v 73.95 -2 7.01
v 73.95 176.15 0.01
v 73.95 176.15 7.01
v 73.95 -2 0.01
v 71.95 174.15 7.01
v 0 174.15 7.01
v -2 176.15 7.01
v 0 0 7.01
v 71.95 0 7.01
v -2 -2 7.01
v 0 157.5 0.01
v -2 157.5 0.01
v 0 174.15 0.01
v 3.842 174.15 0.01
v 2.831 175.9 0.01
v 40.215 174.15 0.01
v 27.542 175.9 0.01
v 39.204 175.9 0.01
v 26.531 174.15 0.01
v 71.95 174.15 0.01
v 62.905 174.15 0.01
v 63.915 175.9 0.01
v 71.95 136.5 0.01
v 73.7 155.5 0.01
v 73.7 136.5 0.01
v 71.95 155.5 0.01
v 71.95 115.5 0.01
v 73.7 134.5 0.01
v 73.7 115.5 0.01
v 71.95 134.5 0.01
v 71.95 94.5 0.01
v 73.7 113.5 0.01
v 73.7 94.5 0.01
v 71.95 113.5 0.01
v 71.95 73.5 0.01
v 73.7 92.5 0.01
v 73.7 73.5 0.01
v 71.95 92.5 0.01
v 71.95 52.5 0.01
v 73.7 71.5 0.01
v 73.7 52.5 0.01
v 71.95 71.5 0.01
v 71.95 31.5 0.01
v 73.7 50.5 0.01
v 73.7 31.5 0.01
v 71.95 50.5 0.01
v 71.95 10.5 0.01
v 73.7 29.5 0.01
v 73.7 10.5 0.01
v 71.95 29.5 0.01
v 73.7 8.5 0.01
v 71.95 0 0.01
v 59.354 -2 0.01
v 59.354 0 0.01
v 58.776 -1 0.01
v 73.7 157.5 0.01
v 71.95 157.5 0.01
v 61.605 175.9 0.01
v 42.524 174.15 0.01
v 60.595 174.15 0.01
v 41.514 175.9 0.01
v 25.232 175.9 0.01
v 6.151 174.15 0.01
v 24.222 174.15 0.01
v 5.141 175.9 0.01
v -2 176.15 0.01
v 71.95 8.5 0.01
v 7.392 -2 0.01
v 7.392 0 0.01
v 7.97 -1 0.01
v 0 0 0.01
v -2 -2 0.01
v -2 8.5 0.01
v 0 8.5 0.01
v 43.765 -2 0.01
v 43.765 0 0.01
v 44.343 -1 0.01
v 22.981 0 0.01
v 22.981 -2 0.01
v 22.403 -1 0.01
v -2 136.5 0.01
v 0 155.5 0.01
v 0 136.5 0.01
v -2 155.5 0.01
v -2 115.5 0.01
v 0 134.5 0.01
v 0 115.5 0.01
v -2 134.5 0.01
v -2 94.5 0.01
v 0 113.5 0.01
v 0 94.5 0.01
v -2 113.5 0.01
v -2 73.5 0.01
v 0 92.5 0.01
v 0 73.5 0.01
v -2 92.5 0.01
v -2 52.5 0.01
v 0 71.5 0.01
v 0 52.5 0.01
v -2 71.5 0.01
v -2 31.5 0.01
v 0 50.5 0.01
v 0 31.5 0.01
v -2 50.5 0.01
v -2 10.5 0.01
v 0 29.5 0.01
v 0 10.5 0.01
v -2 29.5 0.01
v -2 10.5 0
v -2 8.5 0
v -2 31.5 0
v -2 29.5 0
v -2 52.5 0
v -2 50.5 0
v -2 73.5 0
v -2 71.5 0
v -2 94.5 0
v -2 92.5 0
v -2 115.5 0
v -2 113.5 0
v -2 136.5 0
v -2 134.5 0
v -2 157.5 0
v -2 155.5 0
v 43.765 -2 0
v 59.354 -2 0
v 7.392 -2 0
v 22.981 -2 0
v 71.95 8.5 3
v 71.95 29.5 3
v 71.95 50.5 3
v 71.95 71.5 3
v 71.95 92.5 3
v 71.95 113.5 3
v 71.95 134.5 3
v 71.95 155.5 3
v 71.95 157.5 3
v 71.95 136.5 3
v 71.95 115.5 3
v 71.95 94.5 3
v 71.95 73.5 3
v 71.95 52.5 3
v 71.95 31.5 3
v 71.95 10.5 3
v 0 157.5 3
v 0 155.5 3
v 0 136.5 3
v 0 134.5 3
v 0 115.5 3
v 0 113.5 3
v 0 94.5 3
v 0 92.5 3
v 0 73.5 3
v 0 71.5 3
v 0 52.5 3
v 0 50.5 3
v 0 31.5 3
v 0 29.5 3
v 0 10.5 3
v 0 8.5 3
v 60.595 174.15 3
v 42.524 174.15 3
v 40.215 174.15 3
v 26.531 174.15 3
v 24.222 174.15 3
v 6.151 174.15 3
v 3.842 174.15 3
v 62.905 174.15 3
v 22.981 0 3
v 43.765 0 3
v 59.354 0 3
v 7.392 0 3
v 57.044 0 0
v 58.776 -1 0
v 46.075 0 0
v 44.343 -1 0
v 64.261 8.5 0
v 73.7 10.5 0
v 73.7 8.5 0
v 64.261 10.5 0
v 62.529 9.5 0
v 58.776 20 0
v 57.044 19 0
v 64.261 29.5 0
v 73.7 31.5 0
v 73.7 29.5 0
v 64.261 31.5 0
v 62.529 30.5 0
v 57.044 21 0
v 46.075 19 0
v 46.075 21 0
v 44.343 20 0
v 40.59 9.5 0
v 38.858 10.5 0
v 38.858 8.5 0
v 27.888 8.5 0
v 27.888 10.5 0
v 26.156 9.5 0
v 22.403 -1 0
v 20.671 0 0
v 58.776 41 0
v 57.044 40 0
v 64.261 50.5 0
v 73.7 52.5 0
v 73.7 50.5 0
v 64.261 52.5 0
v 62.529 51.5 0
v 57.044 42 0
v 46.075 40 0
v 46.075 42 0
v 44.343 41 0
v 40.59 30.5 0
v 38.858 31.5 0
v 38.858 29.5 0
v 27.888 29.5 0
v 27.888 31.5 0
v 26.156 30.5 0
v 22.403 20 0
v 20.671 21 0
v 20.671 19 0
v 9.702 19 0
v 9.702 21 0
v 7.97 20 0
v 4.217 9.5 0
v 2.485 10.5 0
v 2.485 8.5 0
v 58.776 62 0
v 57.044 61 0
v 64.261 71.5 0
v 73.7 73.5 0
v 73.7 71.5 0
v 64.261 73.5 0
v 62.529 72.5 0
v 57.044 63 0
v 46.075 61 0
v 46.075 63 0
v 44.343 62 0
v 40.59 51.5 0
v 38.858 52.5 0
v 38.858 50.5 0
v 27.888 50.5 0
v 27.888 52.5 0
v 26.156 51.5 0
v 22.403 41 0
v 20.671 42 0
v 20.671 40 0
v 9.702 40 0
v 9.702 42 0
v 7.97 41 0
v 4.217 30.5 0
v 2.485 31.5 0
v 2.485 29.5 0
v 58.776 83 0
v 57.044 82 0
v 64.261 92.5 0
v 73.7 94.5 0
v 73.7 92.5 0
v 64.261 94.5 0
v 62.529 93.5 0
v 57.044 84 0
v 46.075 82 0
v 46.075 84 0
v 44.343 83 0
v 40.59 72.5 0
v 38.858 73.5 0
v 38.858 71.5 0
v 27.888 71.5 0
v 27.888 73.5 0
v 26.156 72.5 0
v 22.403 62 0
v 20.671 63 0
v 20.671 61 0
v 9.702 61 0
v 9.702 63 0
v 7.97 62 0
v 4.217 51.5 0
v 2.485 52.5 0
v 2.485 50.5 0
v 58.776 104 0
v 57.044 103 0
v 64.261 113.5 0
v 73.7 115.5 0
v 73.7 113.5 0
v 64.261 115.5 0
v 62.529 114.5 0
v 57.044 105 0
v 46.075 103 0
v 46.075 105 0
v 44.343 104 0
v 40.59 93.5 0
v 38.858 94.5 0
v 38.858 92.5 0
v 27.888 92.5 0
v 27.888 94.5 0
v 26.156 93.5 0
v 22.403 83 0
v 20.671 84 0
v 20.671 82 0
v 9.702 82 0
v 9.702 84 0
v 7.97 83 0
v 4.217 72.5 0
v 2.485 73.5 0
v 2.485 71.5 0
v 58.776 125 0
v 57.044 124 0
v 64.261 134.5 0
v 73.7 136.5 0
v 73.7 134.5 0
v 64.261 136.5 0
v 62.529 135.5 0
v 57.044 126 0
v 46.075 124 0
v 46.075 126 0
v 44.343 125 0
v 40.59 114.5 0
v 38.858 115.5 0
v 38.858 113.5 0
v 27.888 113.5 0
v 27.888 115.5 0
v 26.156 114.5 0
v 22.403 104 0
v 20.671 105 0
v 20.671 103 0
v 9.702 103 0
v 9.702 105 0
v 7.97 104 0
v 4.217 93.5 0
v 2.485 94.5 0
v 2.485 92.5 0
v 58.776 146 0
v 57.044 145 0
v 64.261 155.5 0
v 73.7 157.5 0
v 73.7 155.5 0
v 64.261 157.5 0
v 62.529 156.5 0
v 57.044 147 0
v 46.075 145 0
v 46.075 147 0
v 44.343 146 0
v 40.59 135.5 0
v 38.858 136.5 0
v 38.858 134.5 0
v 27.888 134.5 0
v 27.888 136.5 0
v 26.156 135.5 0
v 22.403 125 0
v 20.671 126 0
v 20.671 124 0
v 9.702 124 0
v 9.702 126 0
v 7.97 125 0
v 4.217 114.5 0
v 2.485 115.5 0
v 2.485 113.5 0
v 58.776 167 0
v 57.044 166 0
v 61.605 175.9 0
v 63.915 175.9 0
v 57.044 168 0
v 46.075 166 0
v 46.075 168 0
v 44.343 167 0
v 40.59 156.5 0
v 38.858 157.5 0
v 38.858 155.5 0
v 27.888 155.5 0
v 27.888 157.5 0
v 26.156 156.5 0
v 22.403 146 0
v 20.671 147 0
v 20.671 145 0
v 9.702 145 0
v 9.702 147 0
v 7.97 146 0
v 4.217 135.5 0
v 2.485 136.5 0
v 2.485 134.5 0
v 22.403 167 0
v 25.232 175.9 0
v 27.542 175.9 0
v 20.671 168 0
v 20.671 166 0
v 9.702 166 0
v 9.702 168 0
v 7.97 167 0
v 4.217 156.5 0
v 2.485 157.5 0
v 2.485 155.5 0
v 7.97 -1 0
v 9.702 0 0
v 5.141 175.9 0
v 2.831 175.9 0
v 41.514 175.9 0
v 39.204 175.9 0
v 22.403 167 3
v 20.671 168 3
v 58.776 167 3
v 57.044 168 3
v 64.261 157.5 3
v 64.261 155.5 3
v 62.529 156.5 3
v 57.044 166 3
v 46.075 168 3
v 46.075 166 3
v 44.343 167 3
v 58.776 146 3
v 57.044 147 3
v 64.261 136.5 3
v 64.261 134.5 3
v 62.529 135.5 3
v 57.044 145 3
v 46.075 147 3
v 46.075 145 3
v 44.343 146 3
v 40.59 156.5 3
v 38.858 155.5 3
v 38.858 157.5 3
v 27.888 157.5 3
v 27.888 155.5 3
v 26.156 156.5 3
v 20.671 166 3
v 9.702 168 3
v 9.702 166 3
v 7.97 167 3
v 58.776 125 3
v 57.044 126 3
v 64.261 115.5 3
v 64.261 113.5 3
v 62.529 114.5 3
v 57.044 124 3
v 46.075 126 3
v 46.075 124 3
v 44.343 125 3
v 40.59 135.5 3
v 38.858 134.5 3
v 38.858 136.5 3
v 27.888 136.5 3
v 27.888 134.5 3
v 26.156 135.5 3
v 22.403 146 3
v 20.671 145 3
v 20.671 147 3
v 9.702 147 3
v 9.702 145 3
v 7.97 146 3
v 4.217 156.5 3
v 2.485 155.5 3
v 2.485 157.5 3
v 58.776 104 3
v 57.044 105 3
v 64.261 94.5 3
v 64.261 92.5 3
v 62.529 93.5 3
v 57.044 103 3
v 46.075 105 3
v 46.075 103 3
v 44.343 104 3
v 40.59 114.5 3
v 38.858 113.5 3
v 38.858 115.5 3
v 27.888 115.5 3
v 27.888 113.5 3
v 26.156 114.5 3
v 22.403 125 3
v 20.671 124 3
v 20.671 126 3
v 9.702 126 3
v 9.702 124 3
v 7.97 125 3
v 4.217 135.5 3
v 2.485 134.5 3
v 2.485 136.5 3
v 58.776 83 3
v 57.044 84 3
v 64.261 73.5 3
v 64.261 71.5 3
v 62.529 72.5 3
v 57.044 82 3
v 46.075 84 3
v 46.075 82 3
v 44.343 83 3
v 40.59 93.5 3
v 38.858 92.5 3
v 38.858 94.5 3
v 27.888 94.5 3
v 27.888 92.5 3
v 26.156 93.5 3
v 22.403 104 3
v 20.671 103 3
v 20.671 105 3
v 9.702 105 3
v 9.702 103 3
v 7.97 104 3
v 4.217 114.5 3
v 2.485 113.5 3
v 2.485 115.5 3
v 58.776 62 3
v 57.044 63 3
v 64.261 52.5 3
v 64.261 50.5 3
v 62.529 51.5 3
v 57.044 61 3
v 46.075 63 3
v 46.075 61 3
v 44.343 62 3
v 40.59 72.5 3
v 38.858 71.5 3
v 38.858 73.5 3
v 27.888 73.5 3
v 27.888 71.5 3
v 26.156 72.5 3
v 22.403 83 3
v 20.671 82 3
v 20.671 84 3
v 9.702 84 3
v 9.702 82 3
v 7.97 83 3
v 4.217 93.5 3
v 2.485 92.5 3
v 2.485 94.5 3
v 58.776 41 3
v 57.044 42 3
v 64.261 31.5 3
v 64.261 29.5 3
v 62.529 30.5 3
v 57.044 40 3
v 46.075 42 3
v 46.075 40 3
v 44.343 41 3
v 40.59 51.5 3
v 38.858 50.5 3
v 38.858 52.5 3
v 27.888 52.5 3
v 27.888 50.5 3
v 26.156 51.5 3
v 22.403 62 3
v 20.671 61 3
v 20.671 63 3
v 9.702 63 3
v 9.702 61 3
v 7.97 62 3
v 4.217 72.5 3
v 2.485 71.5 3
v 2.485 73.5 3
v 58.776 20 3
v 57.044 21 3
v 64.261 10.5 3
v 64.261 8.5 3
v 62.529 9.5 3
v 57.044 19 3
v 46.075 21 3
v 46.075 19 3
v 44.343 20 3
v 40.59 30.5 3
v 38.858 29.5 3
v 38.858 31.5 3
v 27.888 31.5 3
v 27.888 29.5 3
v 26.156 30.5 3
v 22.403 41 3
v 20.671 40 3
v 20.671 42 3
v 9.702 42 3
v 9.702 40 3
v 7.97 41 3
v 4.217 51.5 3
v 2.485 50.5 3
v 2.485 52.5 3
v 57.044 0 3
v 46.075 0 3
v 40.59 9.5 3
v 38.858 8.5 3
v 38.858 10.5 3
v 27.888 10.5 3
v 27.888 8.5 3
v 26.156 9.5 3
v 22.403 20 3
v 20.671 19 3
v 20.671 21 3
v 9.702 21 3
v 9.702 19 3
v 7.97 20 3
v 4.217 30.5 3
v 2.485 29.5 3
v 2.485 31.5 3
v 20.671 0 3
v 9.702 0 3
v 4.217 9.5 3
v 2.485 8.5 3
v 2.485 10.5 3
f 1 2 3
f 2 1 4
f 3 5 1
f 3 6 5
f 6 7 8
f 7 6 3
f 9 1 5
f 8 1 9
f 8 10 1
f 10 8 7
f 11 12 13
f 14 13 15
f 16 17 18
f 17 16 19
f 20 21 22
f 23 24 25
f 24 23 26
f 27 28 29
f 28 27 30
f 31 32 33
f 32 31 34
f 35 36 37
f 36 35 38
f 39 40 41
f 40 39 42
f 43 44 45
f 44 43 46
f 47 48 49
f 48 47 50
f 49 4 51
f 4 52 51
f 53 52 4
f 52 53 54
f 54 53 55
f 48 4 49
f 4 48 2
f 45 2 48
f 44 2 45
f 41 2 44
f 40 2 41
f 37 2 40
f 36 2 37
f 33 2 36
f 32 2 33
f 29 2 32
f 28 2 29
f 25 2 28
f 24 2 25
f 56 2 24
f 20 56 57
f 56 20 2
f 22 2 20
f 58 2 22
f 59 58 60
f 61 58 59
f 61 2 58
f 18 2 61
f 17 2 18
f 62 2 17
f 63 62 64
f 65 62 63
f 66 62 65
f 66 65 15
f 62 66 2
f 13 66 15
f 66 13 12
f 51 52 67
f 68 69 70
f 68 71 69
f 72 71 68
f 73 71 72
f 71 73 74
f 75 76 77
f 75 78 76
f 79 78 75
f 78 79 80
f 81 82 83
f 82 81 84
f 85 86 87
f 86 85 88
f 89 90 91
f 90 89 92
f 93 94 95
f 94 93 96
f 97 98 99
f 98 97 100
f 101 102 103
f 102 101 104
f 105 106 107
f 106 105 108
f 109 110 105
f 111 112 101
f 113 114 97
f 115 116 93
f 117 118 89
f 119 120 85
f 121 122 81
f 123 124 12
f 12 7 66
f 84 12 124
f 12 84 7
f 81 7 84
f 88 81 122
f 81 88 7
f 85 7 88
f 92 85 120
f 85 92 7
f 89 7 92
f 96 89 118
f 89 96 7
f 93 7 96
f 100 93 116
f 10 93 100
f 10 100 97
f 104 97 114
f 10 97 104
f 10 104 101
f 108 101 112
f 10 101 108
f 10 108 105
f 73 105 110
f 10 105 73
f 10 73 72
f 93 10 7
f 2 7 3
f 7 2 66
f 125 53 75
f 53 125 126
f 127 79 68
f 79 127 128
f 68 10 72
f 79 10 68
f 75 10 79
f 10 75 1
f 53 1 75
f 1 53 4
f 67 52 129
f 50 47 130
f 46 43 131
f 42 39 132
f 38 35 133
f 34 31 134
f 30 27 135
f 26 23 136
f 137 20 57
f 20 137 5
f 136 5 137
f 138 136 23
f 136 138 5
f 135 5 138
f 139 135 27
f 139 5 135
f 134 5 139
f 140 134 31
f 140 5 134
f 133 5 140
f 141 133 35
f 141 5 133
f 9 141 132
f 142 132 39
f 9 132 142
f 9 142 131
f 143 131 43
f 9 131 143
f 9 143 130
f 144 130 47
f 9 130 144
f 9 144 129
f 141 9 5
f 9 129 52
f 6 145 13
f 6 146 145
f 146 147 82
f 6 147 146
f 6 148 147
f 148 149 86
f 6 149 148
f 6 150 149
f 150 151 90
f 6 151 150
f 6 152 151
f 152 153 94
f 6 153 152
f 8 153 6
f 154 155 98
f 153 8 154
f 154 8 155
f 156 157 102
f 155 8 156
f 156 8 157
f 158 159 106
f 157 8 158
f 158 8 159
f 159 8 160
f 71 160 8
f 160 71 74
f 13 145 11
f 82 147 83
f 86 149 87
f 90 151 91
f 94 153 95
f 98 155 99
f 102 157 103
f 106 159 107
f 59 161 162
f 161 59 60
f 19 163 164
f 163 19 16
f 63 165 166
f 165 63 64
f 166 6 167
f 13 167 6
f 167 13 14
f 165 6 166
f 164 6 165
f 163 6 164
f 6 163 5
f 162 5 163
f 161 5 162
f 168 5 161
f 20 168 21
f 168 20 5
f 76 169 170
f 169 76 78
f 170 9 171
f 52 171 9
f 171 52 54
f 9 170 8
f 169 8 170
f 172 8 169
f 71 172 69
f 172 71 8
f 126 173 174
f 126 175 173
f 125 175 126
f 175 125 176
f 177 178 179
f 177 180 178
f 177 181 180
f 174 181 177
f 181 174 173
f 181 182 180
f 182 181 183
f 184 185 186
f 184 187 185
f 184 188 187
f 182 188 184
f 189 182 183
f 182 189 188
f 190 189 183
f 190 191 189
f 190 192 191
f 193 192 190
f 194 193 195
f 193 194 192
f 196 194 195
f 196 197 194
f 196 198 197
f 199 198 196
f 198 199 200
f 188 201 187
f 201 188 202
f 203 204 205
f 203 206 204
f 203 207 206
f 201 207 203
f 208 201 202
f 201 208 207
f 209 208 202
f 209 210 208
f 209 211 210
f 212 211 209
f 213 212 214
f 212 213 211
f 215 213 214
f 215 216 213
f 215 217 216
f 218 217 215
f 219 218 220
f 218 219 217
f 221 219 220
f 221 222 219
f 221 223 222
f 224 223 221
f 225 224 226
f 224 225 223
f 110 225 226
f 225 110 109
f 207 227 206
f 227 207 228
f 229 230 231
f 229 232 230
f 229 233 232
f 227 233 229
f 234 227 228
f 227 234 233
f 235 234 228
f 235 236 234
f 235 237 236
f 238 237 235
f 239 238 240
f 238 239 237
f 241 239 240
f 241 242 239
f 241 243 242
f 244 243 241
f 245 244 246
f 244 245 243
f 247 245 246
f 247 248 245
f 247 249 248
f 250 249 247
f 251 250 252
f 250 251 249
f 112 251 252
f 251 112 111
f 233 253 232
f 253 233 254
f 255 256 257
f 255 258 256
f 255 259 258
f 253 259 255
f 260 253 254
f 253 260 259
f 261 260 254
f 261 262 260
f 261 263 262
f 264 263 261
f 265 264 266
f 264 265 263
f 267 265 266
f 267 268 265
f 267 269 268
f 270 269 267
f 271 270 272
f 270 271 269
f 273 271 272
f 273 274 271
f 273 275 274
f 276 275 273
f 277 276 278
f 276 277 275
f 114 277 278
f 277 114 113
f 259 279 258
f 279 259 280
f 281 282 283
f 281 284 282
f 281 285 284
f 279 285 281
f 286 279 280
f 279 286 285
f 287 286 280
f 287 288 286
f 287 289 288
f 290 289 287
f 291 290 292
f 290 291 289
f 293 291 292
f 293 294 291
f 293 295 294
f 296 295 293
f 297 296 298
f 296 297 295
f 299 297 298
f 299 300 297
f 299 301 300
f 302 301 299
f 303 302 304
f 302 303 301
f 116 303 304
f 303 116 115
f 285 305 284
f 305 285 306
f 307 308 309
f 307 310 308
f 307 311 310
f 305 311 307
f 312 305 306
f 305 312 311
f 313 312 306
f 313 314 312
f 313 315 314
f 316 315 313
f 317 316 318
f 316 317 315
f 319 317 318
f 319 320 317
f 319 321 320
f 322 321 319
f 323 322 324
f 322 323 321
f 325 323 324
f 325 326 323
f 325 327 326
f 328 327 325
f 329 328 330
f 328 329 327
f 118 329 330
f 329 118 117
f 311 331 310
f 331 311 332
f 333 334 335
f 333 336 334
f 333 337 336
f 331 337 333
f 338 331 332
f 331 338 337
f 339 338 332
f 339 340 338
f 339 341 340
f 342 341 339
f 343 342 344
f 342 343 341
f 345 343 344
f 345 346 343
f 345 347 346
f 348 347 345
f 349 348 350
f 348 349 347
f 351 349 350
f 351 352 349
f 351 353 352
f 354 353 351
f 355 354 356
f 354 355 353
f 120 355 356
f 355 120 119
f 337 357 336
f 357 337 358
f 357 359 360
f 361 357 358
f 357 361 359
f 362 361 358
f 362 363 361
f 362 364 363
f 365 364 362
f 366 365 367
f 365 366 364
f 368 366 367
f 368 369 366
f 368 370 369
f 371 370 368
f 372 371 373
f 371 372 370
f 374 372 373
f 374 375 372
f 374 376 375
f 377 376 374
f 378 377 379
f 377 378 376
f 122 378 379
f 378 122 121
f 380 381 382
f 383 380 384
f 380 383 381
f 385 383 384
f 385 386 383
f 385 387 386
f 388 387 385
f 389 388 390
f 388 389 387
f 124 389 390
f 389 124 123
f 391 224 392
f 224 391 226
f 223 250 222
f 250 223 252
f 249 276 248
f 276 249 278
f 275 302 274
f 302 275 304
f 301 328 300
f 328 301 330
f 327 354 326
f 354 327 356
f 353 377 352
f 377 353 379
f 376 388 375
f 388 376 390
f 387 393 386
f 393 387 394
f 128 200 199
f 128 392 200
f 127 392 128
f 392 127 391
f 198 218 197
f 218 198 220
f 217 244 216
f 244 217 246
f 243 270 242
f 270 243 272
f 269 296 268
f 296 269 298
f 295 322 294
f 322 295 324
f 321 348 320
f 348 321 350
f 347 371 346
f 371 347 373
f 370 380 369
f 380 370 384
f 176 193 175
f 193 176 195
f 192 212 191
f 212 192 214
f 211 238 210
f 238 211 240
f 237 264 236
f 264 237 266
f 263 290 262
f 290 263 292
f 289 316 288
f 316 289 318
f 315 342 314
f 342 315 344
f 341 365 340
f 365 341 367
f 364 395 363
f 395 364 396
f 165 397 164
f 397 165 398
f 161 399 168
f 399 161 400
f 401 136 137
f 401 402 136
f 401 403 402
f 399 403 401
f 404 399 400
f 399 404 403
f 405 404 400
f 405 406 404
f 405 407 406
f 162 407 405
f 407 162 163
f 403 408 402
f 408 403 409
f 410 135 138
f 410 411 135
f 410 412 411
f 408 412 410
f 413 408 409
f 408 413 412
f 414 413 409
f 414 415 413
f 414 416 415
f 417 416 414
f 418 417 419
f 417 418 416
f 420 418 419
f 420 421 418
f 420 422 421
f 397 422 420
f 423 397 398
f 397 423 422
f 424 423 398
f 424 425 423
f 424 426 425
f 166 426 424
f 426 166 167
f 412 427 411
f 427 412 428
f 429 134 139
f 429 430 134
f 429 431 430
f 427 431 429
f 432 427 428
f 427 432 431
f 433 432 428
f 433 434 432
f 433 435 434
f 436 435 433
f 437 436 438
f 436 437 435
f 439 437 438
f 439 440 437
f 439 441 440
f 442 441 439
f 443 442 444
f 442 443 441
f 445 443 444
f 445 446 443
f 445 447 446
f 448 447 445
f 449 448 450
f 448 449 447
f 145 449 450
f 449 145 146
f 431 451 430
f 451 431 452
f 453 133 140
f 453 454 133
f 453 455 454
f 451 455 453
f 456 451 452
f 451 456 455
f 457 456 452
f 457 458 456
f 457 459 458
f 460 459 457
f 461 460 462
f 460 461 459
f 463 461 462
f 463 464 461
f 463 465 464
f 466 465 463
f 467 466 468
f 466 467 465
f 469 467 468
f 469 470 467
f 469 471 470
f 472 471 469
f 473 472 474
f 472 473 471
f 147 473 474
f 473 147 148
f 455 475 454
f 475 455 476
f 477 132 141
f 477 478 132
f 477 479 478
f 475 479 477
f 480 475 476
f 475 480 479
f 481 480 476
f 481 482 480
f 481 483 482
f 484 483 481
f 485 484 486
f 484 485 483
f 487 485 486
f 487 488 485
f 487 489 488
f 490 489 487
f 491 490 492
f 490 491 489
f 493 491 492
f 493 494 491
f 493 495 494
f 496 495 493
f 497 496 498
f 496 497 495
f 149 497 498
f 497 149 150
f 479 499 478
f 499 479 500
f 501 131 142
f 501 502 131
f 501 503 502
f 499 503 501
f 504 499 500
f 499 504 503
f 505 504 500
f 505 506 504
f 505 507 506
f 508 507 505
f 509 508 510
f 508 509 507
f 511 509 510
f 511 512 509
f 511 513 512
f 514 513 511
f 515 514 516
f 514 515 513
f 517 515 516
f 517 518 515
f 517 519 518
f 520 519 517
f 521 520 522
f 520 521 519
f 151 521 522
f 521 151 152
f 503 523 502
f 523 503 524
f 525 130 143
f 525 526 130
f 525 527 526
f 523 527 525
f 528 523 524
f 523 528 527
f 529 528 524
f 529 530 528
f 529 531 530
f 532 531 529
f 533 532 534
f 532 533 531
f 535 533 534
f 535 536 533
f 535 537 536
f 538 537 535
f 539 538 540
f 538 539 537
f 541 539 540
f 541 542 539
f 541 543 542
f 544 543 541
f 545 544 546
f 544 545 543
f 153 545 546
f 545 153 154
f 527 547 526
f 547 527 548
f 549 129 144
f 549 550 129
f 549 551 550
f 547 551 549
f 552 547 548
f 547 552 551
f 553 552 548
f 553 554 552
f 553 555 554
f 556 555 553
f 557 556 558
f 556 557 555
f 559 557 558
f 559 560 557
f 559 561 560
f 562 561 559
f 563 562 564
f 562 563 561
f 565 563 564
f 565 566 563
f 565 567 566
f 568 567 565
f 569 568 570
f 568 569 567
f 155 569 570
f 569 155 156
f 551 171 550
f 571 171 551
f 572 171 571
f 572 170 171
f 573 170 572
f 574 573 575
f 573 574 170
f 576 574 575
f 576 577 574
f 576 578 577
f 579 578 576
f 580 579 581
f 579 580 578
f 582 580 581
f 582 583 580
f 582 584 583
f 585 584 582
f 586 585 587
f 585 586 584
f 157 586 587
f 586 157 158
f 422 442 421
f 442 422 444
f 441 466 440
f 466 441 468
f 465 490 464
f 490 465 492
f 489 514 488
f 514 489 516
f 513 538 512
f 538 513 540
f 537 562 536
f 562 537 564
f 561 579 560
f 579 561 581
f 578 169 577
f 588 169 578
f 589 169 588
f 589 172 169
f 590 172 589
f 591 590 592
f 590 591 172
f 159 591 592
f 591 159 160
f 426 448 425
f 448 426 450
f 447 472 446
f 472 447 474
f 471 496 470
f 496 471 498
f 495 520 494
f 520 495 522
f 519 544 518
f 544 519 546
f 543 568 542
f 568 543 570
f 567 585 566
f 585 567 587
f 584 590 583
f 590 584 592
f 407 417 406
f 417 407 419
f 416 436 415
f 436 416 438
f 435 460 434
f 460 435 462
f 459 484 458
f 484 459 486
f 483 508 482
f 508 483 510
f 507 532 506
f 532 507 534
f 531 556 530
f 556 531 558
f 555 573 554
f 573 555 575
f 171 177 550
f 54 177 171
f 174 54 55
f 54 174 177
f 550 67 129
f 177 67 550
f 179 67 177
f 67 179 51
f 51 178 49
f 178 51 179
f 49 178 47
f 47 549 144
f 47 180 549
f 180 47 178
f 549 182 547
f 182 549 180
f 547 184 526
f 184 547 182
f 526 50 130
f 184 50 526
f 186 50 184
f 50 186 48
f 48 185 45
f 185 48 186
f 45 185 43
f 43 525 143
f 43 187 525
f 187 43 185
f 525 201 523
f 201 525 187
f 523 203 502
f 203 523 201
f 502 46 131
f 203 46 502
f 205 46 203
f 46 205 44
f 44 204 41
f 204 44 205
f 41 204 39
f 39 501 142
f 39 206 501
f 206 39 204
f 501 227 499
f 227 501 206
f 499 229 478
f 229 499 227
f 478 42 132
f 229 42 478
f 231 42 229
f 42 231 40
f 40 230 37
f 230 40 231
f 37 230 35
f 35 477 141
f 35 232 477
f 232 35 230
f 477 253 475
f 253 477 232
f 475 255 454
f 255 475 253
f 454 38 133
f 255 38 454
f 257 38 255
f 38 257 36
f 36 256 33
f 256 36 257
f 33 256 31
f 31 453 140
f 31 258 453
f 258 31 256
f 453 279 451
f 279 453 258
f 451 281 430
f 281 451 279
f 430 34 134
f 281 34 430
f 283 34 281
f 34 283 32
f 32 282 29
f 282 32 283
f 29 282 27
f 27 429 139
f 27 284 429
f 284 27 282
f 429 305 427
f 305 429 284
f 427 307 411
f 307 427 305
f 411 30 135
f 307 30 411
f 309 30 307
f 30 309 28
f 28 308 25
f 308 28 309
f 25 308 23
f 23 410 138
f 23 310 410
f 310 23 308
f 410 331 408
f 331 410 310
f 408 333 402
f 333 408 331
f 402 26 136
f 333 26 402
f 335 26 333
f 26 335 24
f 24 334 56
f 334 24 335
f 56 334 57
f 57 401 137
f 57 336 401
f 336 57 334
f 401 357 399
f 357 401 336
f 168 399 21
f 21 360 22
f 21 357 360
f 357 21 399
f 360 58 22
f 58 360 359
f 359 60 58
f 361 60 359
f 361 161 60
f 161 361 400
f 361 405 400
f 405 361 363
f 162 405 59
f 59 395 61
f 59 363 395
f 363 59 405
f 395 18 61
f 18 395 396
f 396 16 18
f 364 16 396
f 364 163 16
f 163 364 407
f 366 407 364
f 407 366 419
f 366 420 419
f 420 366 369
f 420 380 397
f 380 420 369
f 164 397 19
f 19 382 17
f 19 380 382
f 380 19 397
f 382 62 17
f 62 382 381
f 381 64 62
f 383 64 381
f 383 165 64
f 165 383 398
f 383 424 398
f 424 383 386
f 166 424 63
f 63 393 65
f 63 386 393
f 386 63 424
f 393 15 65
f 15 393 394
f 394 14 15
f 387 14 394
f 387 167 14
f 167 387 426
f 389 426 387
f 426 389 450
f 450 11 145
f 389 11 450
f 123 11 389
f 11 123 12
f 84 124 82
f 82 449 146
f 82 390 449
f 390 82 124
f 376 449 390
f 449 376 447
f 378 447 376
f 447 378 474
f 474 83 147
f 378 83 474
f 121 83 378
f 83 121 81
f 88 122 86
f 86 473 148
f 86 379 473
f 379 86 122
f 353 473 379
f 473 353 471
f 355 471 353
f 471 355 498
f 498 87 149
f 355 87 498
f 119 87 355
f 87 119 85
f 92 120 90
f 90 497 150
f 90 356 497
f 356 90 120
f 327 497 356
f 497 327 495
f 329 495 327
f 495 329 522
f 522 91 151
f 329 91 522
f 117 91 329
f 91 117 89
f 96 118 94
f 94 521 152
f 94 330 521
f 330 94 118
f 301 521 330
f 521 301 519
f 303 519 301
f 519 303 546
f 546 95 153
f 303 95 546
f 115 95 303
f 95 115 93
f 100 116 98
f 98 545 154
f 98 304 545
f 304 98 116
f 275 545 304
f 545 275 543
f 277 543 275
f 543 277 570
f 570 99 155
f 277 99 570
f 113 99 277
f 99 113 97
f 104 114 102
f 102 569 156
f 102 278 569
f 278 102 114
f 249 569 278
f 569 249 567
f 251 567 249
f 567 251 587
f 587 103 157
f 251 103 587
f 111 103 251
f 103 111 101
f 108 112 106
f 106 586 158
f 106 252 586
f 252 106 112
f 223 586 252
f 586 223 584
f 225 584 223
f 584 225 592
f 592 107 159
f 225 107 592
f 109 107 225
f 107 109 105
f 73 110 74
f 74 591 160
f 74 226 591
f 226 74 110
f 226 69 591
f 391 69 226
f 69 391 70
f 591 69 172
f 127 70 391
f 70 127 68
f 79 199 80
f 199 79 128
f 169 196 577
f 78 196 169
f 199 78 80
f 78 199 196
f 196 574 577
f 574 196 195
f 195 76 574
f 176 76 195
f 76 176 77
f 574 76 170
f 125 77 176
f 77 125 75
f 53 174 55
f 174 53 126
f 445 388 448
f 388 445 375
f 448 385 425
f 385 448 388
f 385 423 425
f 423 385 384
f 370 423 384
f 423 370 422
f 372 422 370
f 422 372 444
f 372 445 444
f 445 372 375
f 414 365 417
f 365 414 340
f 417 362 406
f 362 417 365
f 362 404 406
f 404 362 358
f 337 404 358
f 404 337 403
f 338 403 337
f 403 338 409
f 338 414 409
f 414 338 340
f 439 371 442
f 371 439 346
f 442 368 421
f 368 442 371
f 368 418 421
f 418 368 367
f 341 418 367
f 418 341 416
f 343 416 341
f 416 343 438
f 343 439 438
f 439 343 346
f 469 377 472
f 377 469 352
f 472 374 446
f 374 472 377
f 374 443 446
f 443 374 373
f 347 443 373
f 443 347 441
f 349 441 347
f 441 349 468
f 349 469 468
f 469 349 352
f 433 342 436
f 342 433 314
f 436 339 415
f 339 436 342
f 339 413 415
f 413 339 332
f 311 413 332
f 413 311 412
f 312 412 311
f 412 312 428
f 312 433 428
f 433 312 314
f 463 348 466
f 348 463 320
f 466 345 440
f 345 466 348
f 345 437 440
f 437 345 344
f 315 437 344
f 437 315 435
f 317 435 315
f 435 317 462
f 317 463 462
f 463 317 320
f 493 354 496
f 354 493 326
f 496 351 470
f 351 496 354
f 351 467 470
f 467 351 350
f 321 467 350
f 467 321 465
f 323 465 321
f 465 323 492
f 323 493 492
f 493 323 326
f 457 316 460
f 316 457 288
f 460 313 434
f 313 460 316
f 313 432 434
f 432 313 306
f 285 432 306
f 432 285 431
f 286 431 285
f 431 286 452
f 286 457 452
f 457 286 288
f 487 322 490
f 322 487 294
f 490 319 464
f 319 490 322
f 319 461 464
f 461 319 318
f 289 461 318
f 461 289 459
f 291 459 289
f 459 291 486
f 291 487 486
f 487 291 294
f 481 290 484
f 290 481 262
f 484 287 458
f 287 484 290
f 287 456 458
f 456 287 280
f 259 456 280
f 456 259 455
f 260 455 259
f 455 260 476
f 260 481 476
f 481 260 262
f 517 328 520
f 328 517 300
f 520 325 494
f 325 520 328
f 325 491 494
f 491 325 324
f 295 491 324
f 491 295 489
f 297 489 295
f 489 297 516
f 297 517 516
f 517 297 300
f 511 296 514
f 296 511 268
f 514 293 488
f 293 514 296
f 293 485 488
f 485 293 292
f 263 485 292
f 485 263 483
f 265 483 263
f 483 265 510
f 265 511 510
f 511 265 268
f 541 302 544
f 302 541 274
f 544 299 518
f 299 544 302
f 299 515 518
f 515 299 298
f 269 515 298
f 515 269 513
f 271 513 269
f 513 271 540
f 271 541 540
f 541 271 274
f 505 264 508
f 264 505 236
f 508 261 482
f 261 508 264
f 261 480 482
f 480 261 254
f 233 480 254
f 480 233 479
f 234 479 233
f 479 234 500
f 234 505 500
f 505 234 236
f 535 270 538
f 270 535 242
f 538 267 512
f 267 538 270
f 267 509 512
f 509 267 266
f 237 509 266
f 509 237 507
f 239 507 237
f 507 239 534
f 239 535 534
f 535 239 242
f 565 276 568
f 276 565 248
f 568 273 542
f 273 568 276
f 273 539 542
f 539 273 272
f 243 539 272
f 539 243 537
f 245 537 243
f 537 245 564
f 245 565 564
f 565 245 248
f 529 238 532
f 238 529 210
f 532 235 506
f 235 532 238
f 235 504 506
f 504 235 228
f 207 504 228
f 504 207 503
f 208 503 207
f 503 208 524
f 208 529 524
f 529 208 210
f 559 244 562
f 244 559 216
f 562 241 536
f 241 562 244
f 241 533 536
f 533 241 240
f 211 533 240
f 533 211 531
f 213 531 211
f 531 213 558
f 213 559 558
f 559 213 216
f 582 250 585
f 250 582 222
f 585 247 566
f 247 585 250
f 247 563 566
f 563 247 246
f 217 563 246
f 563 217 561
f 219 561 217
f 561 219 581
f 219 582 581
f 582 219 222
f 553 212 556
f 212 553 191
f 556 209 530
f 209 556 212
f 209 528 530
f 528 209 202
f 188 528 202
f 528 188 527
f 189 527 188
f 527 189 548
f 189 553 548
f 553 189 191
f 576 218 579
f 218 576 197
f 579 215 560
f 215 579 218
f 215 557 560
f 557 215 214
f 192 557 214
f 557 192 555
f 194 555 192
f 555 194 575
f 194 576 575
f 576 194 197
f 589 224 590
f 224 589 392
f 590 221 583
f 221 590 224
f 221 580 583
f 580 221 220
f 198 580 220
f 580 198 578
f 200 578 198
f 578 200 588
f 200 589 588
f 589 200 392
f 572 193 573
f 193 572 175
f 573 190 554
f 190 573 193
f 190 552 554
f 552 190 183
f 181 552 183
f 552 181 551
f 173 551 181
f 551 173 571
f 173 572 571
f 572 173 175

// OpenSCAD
// all units mm

tight_fit = 0.125;
normal_fit = 0.250;
loose_fit = 0.500;

cell_width = 71.7; // +- 0.8
cell_length = 173.9; // +- 0.8
cell_height = 207.2; // +- 0.8

bracket_thickness = 4;
bracket_skirt_height = 4;
bracket_foot_height = 3;

fit = normal_fit;

cell_blank_width = cell_width + fit;
cell_blank_length = cell_length + fit;
cell_blank_height = cell_height + fit;
cell_blank = [cell_blank_width, cell_blank_length, cell_blank_height];


bottom_bracket = [cell_blank_width + bracket_thickness,cell_blank_length
 + bracket_thickness, bracket_skirt_height + bracket_foot_height];
 
 
module main() {
    bottom_bracket();
}

module bottom_bracket() {
    difference() {
        translate([
            -bracket_thickness/2, 
            -bracket_thickness/2,
            0.01,
        ]) cube(bottom_bracket);
        cube(cell_blank);
    };  
    translate([
        -bracket_thickness/2, 
        -bracket_thickness/2, 
        1.5
    ]) honeycomb(
        cell_width+bracket_thickness, 
        cell_length+bracket_thickness, 
        bracket_foot_height, 
        19, 
        2
    );  
};
 
 
module hc_column(length, cell_size, wall_thickness) {
        no_of_cells = floor(length / (cell_size + wall_thickness)) ;

        for (i = [0 : no_of_cells]) {
                translate([0,(i * (cell_size + wall_thickness)),0])
                         circle($fn = 6, r = cell_size * (sqrt(3)/3));
        }
}

module honeycomb (length, width, height, cell_size, wall_thickness) {
        no_of_rows = floor(1.2 * length / (cell_size + wall_thickness)) ;

        tr_mod = cell_size + wall_thickness;
        tr_x = sqrt(3)/2 * tr_mod;
        tr_y = tr_mod / 2;
        off_x = -1 * wall_thickness / 2;
        off_y = wall_thickness / 2;
        linear_extrude(height = height, center = true, convexity = 10, twist = 0, slices = 1)
                difference(){
                        square([length, width]);
                        for (i = [0 : no_of_rows]) {
                                translate([i * tr_x + off_x, (i % 2) * tr_y + off_y,0])
                                        hc_column(width, cell_size, wall_thickness);
                        }
                }
}

main();
